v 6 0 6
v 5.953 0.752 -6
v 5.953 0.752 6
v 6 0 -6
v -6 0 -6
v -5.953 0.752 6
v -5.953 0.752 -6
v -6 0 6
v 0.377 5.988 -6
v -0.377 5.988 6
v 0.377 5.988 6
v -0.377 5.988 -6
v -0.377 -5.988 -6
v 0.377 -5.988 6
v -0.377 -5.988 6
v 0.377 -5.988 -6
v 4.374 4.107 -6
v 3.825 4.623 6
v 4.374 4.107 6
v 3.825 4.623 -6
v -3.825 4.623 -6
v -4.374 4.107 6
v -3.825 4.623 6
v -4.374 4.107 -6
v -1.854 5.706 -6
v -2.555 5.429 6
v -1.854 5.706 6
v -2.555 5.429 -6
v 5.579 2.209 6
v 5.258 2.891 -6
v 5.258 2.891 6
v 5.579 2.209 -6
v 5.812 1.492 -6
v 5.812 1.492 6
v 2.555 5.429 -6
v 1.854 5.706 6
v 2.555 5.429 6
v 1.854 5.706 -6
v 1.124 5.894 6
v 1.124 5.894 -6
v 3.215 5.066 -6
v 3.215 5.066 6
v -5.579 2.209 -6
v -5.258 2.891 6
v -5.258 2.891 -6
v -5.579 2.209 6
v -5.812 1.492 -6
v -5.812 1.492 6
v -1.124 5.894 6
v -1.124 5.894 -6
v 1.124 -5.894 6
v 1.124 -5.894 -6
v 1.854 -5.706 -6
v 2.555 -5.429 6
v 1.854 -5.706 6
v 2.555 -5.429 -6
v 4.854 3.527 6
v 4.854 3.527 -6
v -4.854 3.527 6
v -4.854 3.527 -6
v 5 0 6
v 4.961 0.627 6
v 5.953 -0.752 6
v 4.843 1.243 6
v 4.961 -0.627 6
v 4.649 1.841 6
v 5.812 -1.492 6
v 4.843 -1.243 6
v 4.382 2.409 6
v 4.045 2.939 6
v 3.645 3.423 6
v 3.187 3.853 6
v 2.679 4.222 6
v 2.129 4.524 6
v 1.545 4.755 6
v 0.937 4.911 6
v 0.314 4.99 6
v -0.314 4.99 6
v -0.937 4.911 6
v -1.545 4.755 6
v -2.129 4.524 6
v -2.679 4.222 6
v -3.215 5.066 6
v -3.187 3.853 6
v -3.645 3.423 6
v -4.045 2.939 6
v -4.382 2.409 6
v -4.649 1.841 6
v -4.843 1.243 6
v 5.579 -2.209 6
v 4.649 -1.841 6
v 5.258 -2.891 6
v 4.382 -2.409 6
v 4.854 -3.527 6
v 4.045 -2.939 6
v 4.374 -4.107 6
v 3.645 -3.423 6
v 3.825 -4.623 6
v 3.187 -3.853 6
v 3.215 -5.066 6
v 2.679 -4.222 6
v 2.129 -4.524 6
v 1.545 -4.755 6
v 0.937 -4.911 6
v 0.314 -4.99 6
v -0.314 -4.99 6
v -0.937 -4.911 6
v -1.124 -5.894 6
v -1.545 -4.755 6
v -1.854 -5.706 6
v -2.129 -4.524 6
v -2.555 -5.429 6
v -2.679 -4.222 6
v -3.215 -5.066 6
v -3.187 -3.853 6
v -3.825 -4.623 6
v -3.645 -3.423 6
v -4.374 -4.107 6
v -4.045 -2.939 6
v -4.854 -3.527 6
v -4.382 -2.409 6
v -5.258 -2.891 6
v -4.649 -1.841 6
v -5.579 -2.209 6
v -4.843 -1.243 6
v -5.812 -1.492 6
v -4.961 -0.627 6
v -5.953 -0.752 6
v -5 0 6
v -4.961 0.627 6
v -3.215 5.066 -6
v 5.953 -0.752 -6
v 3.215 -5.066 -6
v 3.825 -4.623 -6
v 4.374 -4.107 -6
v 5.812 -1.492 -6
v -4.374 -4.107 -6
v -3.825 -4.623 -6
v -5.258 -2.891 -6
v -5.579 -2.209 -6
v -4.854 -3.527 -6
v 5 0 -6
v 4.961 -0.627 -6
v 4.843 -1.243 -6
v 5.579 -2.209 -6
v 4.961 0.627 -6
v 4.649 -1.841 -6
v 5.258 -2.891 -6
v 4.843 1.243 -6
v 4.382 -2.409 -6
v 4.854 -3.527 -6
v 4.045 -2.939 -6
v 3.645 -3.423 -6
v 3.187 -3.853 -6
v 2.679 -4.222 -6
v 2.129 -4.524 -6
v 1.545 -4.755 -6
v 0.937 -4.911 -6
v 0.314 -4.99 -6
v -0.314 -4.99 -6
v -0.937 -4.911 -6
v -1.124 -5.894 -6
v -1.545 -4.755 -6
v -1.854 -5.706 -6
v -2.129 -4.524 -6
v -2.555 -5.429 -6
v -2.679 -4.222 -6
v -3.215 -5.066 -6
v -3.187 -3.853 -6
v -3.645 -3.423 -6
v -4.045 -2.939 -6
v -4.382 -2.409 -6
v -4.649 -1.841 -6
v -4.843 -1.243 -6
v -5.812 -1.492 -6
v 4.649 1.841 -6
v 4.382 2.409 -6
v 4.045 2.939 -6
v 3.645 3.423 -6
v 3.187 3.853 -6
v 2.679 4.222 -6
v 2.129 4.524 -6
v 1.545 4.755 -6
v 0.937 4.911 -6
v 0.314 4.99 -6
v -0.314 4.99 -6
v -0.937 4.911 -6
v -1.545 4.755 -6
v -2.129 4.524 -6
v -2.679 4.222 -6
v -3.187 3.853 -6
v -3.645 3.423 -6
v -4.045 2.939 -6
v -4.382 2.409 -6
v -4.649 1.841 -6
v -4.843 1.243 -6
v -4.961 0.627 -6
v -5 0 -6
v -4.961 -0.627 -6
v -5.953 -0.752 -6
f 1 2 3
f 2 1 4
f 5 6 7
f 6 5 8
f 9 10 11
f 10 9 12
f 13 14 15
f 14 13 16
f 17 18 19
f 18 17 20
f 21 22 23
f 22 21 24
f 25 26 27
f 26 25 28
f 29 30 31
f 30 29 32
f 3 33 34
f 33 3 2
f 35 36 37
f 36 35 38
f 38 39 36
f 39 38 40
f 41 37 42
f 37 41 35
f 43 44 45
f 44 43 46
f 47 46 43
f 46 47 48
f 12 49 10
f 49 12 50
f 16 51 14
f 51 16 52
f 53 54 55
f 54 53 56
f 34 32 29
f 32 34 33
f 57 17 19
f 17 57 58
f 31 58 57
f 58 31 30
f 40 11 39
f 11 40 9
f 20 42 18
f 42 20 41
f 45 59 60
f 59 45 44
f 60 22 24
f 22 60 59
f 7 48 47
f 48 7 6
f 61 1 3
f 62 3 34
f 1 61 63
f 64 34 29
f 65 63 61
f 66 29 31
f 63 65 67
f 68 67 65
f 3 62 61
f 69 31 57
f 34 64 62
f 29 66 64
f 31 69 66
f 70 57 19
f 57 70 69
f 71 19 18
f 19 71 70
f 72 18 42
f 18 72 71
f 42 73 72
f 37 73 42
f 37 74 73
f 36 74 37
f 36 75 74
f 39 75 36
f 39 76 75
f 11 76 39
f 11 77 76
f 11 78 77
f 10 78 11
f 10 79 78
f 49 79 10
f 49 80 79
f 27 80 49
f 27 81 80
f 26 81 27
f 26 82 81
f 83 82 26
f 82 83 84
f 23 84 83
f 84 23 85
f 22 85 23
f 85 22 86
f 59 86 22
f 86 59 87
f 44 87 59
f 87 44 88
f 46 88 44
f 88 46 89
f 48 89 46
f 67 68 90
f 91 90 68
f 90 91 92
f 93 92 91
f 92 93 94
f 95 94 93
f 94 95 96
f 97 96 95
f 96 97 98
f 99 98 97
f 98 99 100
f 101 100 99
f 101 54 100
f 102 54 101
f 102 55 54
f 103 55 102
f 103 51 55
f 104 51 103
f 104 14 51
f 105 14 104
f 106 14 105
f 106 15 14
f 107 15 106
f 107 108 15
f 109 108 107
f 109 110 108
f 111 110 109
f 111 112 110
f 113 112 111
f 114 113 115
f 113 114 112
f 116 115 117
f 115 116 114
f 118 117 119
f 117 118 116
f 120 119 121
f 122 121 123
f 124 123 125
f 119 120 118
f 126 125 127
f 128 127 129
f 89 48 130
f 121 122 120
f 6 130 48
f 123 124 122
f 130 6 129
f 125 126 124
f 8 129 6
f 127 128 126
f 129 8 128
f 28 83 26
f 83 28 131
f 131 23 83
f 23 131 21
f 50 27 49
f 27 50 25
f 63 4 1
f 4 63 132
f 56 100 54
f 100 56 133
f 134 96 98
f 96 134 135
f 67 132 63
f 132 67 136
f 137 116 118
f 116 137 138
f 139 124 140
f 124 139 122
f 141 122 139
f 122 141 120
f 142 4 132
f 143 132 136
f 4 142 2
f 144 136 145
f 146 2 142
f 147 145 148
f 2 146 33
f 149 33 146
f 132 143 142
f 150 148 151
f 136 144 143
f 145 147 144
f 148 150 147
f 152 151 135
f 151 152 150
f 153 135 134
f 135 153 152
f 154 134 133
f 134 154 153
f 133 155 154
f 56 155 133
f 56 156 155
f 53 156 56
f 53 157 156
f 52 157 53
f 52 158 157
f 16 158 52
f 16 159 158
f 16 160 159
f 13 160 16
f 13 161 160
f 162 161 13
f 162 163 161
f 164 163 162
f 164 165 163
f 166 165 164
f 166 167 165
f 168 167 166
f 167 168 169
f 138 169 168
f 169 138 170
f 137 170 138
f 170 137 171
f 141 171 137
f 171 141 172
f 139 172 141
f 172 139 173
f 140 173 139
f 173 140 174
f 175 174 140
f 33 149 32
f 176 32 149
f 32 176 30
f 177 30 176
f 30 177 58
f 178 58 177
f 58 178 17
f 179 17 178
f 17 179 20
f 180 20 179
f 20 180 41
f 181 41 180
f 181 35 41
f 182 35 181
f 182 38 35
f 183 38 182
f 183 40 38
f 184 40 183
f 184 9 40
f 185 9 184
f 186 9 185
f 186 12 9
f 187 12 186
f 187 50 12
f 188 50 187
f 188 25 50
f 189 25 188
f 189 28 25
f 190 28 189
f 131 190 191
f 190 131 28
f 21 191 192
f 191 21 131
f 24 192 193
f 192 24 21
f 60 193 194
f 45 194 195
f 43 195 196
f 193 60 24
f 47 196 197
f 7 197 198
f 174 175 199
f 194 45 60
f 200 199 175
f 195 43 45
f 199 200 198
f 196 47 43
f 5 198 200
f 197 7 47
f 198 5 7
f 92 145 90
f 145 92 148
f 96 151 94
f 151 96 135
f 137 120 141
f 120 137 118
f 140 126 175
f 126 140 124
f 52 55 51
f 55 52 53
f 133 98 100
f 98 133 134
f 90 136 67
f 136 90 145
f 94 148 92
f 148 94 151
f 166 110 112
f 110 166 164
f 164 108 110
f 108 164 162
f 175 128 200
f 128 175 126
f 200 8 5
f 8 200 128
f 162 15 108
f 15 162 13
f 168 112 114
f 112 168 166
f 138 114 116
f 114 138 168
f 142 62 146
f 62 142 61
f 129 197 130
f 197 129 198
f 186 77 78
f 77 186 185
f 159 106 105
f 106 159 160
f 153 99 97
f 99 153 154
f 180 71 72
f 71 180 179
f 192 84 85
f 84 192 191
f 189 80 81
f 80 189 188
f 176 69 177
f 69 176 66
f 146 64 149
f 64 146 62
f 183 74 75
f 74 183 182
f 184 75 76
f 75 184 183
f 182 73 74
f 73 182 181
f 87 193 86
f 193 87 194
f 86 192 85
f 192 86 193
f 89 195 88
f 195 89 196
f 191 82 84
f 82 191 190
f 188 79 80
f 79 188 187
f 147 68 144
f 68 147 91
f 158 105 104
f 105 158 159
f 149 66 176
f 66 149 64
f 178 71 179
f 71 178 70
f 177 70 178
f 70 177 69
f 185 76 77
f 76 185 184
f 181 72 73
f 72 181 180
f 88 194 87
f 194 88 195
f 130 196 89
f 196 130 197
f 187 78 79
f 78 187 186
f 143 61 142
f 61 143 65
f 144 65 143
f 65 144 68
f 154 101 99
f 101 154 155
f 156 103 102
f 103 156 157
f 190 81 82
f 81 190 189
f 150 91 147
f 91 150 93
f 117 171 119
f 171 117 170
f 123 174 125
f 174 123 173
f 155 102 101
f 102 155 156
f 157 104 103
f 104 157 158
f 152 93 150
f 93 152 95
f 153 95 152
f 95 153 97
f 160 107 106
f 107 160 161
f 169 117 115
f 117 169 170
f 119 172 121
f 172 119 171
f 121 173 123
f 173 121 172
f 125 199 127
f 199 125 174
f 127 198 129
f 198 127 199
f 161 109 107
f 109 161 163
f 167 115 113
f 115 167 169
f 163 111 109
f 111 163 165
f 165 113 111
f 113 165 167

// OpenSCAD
$fn = 50;


difference() {
	union() {
		translate(v = [0, 0, -6.0000000000]) {
			cylinder(h = 12, r = 6.0000000000);
		}
	}
	union() {
		translate(v = [0, 0, -100.0000000000]) {
			cylinder(h = 200, r = 5.0000000000);
		}
	}
}
